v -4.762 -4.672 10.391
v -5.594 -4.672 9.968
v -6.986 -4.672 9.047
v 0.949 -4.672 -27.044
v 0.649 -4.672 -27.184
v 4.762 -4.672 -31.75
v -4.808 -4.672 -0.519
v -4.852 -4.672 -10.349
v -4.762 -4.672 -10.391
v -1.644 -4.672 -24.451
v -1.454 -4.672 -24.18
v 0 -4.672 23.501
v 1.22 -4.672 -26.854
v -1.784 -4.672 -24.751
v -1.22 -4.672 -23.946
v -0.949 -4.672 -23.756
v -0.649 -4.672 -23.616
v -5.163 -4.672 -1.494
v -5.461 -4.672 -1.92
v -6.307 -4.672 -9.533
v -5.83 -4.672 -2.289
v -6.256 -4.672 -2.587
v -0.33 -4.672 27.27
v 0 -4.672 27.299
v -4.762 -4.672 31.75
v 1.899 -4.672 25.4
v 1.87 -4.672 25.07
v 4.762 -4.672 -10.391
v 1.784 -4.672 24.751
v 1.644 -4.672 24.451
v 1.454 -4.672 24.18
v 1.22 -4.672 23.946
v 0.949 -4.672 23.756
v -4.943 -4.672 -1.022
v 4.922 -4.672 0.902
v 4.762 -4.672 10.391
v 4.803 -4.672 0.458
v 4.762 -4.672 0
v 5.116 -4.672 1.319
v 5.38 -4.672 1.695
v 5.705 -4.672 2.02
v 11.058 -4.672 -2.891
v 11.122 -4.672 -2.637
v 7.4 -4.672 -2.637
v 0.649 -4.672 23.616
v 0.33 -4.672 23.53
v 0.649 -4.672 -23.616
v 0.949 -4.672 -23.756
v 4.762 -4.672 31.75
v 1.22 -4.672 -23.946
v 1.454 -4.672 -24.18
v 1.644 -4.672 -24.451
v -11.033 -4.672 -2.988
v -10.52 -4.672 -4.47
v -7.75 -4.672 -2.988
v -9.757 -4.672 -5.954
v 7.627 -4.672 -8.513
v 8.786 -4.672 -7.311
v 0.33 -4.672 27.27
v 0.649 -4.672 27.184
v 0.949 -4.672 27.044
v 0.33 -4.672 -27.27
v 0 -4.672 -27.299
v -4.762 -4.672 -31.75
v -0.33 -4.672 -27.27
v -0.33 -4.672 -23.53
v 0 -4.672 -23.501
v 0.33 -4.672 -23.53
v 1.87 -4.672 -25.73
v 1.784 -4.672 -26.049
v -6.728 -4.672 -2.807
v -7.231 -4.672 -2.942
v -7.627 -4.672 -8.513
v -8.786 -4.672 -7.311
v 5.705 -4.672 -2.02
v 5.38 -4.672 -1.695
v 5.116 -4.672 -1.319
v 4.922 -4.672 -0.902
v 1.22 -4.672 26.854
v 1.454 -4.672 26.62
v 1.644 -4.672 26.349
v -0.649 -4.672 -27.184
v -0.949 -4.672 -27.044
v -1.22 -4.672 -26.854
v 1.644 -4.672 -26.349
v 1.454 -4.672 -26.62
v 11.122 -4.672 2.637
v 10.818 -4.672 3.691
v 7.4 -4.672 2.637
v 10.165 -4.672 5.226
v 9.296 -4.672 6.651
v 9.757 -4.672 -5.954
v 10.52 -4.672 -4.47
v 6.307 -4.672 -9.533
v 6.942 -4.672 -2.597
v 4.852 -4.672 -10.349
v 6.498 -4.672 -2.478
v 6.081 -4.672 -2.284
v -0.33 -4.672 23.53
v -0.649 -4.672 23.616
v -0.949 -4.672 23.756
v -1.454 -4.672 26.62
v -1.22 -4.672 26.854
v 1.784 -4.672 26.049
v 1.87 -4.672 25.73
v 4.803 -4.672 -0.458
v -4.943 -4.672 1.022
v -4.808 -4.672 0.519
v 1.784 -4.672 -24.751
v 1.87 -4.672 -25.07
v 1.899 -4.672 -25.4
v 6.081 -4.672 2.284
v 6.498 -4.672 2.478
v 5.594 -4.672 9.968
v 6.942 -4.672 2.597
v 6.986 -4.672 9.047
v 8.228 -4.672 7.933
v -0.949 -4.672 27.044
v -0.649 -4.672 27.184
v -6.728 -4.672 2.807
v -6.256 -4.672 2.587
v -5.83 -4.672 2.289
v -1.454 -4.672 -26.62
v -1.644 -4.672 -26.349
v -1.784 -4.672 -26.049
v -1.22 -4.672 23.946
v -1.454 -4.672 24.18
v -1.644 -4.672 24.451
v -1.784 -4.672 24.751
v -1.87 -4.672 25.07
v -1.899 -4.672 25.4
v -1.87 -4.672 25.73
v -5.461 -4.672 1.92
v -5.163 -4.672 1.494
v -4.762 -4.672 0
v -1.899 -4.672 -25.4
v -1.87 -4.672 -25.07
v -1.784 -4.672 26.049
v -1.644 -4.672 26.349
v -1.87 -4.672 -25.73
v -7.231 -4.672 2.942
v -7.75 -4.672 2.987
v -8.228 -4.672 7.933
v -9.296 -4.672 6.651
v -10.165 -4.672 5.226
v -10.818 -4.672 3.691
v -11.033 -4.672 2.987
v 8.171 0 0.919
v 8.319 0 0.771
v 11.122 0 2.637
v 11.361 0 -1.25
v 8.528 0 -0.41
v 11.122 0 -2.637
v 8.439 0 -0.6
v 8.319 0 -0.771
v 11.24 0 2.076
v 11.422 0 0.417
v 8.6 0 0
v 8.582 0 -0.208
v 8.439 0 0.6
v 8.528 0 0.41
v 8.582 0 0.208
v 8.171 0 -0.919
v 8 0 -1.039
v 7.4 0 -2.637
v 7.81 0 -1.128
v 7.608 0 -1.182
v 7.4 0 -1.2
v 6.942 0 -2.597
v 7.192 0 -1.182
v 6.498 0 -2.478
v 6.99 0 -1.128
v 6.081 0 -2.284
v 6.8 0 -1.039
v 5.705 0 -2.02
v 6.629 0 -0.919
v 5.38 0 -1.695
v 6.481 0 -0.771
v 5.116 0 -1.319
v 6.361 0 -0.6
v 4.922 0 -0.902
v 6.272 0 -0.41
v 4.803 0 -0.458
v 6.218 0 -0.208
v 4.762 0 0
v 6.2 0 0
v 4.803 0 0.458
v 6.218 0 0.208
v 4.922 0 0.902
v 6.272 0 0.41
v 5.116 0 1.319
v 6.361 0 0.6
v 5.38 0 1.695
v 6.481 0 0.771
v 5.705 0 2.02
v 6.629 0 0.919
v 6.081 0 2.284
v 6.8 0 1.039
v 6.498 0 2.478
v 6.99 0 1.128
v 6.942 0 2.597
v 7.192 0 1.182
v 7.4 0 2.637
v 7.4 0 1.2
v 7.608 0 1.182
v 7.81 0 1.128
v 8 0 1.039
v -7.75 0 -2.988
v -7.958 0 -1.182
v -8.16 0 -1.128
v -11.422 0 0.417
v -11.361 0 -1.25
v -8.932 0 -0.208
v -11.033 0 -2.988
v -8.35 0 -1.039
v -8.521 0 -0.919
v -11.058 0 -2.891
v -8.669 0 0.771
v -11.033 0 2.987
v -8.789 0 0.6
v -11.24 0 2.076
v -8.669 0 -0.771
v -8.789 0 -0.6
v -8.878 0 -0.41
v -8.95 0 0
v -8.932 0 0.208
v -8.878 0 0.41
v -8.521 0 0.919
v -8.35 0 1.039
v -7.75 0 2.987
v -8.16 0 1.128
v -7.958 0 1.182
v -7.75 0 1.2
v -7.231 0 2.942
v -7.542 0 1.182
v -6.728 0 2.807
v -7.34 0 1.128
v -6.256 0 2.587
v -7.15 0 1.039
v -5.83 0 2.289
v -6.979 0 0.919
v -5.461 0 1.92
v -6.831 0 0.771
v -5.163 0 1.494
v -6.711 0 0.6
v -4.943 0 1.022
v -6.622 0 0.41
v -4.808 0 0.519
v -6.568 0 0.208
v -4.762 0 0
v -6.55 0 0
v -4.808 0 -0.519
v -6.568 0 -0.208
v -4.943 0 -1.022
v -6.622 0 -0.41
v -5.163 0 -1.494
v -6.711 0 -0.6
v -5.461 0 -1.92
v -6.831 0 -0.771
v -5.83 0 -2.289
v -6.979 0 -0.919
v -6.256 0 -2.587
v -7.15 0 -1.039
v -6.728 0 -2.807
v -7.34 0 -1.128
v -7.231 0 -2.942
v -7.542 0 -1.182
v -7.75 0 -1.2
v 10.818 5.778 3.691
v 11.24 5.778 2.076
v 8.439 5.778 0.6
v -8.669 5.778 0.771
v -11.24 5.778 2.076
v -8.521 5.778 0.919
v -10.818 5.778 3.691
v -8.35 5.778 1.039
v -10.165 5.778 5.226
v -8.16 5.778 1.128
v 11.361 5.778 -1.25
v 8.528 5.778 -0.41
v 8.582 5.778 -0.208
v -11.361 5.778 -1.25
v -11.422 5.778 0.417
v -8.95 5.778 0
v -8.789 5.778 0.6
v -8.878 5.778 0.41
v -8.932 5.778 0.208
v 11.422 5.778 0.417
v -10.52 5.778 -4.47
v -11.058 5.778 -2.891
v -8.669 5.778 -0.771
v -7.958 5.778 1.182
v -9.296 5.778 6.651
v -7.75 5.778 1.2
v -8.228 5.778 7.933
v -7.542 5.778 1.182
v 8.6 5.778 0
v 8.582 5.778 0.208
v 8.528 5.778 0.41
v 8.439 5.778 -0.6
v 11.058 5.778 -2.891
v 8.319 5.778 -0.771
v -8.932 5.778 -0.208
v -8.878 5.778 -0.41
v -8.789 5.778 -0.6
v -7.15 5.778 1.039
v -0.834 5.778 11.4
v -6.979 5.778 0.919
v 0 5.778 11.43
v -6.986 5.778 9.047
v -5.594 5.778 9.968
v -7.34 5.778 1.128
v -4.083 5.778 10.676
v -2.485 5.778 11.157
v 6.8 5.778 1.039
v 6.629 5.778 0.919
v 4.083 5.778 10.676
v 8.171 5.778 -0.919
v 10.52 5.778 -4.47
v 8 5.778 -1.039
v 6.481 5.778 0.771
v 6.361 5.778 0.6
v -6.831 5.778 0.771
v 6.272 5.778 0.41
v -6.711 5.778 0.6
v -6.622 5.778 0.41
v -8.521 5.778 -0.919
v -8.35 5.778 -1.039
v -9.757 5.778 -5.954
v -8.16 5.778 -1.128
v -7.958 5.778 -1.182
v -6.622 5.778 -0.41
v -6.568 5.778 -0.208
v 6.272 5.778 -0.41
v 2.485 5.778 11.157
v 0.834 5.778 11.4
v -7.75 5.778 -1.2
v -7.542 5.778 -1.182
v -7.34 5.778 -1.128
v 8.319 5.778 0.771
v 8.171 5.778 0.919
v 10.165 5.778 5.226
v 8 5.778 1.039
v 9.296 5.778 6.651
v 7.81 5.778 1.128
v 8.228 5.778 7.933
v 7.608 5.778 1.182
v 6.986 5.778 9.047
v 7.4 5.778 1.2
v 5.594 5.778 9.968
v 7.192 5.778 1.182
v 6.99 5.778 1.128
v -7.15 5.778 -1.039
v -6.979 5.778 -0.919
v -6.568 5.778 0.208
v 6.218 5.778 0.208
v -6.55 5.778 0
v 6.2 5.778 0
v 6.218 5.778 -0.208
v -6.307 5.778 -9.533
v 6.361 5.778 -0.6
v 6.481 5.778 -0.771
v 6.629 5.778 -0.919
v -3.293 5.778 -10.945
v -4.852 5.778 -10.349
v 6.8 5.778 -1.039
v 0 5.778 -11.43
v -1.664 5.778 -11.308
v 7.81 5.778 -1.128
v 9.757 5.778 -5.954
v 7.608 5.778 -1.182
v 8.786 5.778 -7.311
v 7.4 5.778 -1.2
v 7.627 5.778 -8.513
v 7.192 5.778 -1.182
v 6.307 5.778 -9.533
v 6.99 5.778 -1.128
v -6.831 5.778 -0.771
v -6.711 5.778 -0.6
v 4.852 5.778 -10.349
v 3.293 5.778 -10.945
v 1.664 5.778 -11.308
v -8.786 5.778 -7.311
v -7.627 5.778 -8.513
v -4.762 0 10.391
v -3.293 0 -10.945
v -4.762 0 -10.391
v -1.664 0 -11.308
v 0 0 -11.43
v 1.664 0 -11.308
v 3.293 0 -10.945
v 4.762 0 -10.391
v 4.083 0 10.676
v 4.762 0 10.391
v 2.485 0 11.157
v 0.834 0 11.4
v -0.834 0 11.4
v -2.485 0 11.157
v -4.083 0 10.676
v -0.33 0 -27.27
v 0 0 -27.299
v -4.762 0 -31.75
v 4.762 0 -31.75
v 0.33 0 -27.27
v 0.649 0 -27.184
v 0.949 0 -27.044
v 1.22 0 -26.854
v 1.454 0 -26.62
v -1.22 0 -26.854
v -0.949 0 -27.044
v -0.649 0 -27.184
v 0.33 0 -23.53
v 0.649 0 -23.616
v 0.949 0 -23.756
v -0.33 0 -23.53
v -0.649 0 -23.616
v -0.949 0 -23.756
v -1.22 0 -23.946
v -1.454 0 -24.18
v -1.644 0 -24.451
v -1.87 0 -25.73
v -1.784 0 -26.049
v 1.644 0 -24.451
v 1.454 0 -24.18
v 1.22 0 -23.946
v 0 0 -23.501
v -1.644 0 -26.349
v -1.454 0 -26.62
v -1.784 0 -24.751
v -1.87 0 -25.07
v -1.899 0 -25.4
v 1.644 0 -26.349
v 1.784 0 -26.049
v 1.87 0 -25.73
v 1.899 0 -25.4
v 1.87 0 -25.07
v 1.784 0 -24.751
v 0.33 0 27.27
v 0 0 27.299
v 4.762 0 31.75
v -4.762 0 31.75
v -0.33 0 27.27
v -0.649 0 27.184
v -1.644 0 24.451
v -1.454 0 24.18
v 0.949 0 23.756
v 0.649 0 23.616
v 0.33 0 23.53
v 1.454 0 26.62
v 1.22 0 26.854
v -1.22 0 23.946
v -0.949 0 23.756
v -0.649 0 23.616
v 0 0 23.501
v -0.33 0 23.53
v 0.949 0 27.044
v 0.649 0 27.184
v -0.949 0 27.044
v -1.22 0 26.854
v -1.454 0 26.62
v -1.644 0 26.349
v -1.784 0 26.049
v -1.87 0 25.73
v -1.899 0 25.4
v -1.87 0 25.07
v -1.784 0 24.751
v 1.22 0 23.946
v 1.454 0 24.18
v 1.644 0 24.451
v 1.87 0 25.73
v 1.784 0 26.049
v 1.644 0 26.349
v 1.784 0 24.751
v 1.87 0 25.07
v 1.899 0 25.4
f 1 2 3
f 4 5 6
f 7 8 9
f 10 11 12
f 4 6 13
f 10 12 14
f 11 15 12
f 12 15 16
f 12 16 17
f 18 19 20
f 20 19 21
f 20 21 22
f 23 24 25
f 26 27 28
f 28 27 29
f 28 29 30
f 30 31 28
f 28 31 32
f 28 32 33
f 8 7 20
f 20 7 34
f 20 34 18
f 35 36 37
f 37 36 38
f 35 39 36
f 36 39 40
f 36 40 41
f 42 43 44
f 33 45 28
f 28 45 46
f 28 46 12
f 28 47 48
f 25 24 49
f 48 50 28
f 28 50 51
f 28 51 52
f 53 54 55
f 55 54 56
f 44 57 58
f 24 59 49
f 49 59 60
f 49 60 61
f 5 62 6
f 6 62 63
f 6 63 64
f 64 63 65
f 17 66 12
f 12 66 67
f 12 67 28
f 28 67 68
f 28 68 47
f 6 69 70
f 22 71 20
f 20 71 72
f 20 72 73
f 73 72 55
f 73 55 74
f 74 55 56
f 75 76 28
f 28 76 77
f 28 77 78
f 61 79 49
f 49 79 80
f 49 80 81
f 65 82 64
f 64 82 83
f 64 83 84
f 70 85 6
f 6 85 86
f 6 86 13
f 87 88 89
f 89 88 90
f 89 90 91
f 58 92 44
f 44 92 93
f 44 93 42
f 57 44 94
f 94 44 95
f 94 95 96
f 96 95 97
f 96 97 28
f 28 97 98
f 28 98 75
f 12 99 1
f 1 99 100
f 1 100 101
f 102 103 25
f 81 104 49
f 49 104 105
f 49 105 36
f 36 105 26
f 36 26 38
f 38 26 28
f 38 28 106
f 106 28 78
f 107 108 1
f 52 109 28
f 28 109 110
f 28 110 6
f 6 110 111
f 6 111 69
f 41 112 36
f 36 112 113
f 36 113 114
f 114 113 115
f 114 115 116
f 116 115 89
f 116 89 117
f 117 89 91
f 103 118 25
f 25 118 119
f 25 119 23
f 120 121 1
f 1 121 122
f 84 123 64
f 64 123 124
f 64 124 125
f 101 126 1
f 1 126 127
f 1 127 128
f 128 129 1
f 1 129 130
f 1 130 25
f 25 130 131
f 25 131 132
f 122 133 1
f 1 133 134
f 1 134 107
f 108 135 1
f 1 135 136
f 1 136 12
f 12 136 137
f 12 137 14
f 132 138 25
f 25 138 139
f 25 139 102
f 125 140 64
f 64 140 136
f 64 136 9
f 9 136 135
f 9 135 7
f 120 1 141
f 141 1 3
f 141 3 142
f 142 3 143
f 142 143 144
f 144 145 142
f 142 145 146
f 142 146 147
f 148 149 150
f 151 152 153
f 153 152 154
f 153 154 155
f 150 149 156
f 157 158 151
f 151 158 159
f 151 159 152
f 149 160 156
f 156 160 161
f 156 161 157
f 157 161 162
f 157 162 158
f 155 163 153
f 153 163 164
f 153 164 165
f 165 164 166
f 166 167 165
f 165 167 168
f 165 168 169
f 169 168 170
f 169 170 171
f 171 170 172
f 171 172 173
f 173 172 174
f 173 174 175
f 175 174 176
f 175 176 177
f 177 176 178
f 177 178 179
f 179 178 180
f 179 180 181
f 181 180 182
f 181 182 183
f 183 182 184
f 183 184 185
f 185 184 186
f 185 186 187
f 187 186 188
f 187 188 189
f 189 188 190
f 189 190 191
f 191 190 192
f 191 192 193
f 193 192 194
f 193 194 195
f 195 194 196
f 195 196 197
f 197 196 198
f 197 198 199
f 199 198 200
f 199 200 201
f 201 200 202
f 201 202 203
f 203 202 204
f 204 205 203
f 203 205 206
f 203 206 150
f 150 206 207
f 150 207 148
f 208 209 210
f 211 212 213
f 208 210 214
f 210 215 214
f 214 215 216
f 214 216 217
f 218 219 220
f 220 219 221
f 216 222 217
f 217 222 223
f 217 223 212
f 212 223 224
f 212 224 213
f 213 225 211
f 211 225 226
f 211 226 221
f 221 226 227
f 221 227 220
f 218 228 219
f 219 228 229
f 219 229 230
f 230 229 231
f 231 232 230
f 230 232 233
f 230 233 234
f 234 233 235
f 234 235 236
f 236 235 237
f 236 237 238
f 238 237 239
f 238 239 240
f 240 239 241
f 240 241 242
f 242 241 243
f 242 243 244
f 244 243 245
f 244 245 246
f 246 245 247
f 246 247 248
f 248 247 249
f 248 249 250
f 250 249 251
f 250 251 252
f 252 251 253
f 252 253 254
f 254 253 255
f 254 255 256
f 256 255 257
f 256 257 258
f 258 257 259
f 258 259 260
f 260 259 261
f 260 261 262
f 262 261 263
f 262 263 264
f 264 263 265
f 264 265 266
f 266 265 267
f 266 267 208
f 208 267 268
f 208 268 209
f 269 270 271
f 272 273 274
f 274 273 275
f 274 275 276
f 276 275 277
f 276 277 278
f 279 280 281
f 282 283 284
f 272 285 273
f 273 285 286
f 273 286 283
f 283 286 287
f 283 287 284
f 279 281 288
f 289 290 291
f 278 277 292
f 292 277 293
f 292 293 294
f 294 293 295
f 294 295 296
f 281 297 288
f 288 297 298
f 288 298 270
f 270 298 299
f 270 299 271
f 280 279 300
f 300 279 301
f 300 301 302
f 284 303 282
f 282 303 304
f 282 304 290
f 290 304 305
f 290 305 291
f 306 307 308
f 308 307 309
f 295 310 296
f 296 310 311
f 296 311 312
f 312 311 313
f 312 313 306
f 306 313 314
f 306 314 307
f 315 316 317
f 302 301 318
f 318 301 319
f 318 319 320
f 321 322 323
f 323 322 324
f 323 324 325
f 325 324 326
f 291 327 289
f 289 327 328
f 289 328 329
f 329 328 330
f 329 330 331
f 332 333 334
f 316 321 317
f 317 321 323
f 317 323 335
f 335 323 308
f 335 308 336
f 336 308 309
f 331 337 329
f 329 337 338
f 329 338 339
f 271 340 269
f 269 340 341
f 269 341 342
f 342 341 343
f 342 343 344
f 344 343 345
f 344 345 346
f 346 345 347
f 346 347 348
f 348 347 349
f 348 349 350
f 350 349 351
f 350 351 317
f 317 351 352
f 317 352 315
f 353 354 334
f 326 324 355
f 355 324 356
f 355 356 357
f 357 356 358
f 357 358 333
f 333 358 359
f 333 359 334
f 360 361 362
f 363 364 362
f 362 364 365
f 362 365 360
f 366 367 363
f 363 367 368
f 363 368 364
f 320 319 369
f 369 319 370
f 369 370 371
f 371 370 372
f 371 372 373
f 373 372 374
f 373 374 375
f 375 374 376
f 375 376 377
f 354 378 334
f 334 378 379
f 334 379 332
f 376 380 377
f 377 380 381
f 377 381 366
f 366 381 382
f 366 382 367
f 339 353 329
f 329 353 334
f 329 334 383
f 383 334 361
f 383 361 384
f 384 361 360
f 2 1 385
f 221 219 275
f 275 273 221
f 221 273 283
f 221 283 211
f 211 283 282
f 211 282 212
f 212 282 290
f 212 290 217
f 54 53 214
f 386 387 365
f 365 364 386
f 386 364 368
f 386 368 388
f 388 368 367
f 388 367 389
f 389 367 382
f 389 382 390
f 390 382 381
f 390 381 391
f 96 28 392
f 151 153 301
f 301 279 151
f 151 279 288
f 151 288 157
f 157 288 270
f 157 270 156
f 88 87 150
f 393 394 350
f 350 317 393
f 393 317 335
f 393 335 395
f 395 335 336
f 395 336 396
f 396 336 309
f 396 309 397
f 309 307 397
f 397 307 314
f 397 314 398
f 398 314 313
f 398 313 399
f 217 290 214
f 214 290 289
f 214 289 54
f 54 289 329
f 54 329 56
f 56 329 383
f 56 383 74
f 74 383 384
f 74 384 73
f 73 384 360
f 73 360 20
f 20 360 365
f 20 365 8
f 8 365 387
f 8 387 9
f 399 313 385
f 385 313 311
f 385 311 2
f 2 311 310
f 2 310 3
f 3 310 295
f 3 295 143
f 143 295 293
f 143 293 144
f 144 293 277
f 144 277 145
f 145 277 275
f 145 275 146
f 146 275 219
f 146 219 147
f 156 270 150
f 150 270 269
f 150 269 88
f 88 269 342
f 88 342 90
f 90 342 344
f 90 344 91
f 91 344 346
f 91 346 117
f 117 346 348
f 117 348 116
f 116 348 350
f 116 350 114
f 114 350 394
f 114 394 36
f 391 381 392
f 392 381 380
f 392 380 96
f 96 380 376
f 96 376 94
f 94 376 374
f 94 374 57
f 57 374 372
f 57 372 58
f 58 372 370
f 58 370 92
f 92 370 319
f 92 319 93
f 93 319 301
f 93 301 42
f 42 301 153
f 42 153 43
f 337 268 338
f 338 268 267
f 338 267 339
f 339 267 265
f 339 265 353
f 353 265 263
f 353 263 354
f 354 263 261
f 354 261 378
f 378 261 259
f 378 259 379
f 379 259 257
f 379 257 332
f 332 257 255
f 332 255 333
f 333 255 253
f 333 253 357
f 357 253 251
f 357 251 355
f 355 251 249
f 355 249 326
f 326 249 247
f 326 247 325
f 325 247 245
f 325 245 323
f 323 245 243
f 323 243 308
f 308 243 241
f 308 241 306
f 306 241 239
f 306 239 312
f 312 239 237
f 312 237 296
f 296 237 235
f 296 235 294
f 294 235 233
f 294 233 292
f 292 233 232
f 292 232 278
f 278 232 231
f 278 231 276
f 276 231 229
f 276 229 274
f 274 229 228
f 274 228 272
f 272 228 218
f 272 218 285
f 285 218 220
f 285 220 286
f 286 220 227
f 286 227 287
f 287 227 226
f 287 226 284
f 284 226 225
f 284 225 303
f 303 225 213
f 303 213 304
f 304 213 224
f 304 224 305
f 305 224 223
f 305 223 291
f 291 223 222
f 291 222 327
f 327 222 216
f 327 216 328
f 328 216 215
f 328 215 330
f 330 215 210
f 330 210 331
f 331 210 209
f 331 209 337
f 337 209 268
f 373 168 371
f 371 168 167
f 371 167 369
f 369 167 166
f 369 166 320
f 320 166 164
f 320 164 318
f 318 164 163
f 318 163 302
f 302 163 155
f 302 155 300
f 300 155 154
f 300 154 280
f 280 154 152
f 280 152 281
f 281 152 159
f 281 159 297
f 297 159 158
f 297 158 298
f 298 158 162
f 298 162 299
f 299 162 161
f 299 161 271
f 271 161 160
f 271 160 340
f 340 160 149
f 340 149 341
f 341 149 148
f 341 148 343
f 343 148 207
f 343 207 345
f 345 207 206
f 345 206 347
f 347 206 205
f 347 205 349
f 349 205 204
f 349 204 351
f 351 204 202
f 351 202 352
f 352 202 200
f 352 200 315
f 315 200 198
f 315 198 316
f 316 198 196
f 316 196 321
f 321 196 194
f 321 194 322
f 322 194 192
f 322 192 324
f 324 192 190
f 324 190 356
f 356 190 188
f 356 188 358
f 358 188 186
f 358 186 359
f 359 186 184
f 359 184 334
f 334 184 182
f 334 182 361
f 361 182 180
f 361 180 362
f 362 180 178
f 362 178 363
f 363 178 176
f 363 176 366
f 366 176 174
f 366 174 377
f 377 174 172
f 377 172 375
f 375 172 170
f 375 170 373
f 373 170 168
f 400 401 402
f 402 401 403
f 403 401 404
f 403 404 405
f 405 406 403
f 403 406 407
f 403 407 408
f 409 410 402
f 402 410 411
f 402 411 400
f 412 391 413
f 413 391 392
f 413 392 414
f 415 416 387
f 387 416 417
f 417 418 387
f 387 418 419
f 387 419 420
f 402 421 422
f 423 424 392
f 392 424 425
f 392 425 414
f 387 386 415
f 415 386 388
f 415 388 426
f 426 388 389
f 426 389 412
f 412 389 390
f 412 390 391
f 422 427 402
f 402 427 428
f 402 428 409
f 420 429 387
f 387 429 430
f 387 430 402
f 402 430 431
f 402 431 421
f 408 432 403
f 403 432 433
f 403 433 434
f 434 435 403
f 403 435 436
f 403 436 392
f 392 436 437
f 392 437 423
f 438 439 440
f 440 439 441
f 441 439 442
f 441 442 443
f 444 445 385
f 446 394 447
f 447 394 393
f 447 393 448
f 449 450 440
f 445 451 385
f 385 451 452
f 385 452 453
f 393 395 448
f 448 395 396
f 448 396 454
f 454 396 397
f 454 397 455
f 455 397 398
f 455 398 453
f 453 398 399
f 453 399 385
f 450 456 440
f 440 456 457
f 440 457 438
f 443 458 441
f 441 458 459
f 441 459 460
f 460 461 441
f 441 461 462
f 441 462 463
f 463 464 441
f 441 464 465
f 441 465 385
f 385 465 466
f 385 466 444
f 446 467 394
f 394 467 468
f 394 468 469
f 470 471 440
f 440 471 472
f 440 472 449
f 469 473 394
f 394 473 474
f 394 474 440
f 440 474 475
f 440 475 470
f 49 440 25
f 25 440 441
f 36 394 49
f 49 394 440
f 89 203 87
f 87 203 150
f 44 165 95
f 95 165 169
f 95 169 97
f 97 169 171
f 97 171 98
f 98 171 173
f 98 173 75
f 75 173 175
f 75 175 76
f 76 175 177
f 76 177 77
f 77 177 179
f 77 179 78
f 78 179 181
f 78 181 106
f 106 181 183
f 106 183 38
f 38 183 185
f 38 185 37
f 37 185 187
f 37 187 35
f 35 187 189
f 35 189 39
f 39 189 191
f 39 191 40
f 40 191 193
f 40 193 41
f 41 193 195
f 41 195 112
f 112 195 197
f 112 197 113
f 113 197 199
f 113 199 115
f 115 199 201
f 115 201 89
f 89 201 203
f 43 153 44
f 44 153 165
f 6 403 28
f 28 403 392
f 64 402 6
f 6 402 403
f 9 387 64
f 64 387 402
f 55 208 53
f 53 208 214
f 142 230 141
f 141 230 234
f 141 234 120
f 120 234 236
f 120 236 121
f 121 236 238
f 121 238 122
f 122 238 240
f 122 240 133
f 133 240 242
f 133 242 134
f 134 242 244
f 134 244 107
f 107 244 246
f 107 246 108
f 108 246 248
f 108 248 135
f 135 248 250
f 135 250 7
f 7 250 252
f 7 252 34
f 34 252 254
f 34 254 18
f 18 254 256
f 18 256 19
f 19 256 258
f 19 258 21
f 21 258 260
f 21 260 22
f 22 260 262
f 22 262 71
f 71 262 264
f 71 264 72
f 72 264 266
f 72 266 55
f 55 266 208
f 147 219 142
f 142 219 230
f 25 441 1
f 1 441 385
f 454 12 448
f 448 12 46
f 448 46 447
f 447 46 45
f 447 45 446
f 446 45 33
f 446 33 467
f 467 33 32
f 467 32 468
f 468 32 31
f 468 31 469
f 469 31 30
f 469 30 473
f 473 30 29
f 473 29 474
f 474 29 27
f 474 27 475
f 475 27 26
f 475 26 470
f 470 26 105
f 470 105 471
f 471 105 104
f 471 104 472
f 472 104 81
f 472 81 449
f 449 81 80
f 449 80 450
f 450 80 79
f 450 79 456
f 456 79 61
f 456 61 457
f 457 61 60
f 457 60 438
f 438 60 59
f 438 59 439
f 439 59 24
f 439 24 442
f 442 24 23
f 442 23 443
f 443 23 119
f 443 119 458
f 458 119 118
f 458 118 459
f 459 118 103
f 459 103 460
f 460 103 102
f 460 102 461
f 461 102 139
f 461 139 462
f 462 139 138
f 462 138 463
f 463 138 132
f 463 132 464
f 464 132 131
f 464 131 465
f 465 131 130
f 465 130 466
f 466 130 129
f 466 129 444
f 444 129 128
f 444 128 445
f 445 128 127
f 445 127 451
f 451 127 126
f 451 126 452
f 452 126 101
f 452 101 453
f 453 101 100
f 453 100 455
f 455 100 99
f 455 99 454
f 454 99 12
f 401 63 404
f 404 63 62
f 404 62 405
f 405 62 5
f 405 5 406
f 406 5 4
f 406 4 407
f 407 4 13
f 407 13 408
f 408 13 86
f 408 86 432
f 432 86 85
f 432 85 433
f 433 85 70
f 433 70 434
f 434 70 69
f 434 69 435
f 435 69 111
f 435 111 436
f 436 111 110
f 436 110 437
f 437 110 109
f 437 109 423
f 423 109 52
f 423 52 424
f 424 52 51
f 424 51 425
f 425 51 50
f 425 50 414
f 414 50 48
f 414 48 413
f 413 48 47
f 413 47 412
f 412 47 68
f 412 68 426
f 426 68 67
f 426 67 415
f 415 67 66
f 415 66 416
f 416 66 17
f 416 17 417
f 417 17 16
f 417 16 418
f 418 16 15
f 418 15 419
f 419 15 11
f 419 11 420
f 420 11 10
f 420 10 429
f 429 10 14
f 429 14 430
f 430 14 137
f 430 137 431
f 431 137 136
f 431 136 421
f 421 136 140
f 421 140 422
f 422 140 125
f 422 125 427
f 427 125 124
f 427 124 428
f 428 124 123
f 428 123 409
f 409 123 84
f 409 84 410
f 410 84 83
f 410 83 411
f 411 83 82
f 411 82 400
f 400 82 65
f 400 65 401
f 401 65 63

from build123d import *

# Parameters (mm, degrees)
SKETCH1_R             = 11.43
SKETCH1_R_2           = 1.2
BOSS_EXTRUDE1_DEPTH   = 5.7785
BOSS_EXTRUDE2_DEPTH   = 4.671568
F_6_CLEARANCE_HOLE1_D = 3.7973


with BuildPart() as part:
    # Sketch1 → Boss-Extrude1 (new body)
    with BuildSketch(Plane(origin=(0, 0, 0), x_dir=(1, 0, 0), z_dir=(0, 1, 0))):
        Circle(SKETCH1_R)
        with Locations((-7.75, 0)):
            Circle(SKETCH1_R_2, mode=Mode.SUBTRACT)
        with Locations((7.4, 0)):
            Circle(SKETCH1_R_2, mode=Mode.SUBTRACT)
    extrude(amount=BOSS_EXTRUDE1_DEPTH)

    # Sketch2 → Boss-Extrude2 (add)
    with BuildSketch(Plane.XZ):
        with BuildLine():
            Line((-7.75, -2.9875), (-11.032667119, -2.9875))
            ThreePointArc((-11.032667119, -2.9875), (-8.721989857, -7.387272361), (-4.7625, -10.390548289))
            Line((-4.7625, -10.390548289), (-4.7625, -31.75))
            Line((-4.7625, -31.75), (4.7625, -31.75))
            Line((4.7625, -31.75), (4.7625, -10.390548289))
            ThreePointArc((4.7625, -10.390548289), (8.837593826, -7.248574713), (11.121532887, -2.6375))
            Line((11.121532887, -2.6375), (7.4, -2.6375))
            ThreePointArc((7.4, -2.6375), (4.7625, 0), (7.4, 2.6375))
            Line((7.4, 2.6375), (11.121532887, 2.6375))
            ThreePointArc((11.121532887, 2.6375), (8.837593826, 7.248574713), (4.7625, 10.390548289))
            Line((4.7625, 10.390548289), (4.7625, 31.75))
            Line((4.7625, 31.75), (-4.7625, 31.75))
            Line((-4.7625, 31.75), (-4.7625, 10.390548289))
            ThreePointArc((-4.7625, 10.390548289), (-8.721989857, 7.387272361), (-11.032667119, 2.9875))
            Line((-11.032667119, 2.9875), (-7.75, 2.9875))
            ThreePointArc((-7.75, 2.9875), (-4.7625, 0), (-7.75, -2.9875))
        make_face()
    extrude(amount=BOSS_EXTRUDE2_DEPTH)

    # #6 Clearance Hole1 (through all)
    with Locations(Plane(origin=(0, -4.671568, 0), x_dir=(-1, 0, 0), z_dir=(0, -1, 0))):
        with Locations((0, 25.4), (0, -25.4)):
            Hole(F_6_CLEARANCE_HOLE1_D / 2)


solid = part.part
